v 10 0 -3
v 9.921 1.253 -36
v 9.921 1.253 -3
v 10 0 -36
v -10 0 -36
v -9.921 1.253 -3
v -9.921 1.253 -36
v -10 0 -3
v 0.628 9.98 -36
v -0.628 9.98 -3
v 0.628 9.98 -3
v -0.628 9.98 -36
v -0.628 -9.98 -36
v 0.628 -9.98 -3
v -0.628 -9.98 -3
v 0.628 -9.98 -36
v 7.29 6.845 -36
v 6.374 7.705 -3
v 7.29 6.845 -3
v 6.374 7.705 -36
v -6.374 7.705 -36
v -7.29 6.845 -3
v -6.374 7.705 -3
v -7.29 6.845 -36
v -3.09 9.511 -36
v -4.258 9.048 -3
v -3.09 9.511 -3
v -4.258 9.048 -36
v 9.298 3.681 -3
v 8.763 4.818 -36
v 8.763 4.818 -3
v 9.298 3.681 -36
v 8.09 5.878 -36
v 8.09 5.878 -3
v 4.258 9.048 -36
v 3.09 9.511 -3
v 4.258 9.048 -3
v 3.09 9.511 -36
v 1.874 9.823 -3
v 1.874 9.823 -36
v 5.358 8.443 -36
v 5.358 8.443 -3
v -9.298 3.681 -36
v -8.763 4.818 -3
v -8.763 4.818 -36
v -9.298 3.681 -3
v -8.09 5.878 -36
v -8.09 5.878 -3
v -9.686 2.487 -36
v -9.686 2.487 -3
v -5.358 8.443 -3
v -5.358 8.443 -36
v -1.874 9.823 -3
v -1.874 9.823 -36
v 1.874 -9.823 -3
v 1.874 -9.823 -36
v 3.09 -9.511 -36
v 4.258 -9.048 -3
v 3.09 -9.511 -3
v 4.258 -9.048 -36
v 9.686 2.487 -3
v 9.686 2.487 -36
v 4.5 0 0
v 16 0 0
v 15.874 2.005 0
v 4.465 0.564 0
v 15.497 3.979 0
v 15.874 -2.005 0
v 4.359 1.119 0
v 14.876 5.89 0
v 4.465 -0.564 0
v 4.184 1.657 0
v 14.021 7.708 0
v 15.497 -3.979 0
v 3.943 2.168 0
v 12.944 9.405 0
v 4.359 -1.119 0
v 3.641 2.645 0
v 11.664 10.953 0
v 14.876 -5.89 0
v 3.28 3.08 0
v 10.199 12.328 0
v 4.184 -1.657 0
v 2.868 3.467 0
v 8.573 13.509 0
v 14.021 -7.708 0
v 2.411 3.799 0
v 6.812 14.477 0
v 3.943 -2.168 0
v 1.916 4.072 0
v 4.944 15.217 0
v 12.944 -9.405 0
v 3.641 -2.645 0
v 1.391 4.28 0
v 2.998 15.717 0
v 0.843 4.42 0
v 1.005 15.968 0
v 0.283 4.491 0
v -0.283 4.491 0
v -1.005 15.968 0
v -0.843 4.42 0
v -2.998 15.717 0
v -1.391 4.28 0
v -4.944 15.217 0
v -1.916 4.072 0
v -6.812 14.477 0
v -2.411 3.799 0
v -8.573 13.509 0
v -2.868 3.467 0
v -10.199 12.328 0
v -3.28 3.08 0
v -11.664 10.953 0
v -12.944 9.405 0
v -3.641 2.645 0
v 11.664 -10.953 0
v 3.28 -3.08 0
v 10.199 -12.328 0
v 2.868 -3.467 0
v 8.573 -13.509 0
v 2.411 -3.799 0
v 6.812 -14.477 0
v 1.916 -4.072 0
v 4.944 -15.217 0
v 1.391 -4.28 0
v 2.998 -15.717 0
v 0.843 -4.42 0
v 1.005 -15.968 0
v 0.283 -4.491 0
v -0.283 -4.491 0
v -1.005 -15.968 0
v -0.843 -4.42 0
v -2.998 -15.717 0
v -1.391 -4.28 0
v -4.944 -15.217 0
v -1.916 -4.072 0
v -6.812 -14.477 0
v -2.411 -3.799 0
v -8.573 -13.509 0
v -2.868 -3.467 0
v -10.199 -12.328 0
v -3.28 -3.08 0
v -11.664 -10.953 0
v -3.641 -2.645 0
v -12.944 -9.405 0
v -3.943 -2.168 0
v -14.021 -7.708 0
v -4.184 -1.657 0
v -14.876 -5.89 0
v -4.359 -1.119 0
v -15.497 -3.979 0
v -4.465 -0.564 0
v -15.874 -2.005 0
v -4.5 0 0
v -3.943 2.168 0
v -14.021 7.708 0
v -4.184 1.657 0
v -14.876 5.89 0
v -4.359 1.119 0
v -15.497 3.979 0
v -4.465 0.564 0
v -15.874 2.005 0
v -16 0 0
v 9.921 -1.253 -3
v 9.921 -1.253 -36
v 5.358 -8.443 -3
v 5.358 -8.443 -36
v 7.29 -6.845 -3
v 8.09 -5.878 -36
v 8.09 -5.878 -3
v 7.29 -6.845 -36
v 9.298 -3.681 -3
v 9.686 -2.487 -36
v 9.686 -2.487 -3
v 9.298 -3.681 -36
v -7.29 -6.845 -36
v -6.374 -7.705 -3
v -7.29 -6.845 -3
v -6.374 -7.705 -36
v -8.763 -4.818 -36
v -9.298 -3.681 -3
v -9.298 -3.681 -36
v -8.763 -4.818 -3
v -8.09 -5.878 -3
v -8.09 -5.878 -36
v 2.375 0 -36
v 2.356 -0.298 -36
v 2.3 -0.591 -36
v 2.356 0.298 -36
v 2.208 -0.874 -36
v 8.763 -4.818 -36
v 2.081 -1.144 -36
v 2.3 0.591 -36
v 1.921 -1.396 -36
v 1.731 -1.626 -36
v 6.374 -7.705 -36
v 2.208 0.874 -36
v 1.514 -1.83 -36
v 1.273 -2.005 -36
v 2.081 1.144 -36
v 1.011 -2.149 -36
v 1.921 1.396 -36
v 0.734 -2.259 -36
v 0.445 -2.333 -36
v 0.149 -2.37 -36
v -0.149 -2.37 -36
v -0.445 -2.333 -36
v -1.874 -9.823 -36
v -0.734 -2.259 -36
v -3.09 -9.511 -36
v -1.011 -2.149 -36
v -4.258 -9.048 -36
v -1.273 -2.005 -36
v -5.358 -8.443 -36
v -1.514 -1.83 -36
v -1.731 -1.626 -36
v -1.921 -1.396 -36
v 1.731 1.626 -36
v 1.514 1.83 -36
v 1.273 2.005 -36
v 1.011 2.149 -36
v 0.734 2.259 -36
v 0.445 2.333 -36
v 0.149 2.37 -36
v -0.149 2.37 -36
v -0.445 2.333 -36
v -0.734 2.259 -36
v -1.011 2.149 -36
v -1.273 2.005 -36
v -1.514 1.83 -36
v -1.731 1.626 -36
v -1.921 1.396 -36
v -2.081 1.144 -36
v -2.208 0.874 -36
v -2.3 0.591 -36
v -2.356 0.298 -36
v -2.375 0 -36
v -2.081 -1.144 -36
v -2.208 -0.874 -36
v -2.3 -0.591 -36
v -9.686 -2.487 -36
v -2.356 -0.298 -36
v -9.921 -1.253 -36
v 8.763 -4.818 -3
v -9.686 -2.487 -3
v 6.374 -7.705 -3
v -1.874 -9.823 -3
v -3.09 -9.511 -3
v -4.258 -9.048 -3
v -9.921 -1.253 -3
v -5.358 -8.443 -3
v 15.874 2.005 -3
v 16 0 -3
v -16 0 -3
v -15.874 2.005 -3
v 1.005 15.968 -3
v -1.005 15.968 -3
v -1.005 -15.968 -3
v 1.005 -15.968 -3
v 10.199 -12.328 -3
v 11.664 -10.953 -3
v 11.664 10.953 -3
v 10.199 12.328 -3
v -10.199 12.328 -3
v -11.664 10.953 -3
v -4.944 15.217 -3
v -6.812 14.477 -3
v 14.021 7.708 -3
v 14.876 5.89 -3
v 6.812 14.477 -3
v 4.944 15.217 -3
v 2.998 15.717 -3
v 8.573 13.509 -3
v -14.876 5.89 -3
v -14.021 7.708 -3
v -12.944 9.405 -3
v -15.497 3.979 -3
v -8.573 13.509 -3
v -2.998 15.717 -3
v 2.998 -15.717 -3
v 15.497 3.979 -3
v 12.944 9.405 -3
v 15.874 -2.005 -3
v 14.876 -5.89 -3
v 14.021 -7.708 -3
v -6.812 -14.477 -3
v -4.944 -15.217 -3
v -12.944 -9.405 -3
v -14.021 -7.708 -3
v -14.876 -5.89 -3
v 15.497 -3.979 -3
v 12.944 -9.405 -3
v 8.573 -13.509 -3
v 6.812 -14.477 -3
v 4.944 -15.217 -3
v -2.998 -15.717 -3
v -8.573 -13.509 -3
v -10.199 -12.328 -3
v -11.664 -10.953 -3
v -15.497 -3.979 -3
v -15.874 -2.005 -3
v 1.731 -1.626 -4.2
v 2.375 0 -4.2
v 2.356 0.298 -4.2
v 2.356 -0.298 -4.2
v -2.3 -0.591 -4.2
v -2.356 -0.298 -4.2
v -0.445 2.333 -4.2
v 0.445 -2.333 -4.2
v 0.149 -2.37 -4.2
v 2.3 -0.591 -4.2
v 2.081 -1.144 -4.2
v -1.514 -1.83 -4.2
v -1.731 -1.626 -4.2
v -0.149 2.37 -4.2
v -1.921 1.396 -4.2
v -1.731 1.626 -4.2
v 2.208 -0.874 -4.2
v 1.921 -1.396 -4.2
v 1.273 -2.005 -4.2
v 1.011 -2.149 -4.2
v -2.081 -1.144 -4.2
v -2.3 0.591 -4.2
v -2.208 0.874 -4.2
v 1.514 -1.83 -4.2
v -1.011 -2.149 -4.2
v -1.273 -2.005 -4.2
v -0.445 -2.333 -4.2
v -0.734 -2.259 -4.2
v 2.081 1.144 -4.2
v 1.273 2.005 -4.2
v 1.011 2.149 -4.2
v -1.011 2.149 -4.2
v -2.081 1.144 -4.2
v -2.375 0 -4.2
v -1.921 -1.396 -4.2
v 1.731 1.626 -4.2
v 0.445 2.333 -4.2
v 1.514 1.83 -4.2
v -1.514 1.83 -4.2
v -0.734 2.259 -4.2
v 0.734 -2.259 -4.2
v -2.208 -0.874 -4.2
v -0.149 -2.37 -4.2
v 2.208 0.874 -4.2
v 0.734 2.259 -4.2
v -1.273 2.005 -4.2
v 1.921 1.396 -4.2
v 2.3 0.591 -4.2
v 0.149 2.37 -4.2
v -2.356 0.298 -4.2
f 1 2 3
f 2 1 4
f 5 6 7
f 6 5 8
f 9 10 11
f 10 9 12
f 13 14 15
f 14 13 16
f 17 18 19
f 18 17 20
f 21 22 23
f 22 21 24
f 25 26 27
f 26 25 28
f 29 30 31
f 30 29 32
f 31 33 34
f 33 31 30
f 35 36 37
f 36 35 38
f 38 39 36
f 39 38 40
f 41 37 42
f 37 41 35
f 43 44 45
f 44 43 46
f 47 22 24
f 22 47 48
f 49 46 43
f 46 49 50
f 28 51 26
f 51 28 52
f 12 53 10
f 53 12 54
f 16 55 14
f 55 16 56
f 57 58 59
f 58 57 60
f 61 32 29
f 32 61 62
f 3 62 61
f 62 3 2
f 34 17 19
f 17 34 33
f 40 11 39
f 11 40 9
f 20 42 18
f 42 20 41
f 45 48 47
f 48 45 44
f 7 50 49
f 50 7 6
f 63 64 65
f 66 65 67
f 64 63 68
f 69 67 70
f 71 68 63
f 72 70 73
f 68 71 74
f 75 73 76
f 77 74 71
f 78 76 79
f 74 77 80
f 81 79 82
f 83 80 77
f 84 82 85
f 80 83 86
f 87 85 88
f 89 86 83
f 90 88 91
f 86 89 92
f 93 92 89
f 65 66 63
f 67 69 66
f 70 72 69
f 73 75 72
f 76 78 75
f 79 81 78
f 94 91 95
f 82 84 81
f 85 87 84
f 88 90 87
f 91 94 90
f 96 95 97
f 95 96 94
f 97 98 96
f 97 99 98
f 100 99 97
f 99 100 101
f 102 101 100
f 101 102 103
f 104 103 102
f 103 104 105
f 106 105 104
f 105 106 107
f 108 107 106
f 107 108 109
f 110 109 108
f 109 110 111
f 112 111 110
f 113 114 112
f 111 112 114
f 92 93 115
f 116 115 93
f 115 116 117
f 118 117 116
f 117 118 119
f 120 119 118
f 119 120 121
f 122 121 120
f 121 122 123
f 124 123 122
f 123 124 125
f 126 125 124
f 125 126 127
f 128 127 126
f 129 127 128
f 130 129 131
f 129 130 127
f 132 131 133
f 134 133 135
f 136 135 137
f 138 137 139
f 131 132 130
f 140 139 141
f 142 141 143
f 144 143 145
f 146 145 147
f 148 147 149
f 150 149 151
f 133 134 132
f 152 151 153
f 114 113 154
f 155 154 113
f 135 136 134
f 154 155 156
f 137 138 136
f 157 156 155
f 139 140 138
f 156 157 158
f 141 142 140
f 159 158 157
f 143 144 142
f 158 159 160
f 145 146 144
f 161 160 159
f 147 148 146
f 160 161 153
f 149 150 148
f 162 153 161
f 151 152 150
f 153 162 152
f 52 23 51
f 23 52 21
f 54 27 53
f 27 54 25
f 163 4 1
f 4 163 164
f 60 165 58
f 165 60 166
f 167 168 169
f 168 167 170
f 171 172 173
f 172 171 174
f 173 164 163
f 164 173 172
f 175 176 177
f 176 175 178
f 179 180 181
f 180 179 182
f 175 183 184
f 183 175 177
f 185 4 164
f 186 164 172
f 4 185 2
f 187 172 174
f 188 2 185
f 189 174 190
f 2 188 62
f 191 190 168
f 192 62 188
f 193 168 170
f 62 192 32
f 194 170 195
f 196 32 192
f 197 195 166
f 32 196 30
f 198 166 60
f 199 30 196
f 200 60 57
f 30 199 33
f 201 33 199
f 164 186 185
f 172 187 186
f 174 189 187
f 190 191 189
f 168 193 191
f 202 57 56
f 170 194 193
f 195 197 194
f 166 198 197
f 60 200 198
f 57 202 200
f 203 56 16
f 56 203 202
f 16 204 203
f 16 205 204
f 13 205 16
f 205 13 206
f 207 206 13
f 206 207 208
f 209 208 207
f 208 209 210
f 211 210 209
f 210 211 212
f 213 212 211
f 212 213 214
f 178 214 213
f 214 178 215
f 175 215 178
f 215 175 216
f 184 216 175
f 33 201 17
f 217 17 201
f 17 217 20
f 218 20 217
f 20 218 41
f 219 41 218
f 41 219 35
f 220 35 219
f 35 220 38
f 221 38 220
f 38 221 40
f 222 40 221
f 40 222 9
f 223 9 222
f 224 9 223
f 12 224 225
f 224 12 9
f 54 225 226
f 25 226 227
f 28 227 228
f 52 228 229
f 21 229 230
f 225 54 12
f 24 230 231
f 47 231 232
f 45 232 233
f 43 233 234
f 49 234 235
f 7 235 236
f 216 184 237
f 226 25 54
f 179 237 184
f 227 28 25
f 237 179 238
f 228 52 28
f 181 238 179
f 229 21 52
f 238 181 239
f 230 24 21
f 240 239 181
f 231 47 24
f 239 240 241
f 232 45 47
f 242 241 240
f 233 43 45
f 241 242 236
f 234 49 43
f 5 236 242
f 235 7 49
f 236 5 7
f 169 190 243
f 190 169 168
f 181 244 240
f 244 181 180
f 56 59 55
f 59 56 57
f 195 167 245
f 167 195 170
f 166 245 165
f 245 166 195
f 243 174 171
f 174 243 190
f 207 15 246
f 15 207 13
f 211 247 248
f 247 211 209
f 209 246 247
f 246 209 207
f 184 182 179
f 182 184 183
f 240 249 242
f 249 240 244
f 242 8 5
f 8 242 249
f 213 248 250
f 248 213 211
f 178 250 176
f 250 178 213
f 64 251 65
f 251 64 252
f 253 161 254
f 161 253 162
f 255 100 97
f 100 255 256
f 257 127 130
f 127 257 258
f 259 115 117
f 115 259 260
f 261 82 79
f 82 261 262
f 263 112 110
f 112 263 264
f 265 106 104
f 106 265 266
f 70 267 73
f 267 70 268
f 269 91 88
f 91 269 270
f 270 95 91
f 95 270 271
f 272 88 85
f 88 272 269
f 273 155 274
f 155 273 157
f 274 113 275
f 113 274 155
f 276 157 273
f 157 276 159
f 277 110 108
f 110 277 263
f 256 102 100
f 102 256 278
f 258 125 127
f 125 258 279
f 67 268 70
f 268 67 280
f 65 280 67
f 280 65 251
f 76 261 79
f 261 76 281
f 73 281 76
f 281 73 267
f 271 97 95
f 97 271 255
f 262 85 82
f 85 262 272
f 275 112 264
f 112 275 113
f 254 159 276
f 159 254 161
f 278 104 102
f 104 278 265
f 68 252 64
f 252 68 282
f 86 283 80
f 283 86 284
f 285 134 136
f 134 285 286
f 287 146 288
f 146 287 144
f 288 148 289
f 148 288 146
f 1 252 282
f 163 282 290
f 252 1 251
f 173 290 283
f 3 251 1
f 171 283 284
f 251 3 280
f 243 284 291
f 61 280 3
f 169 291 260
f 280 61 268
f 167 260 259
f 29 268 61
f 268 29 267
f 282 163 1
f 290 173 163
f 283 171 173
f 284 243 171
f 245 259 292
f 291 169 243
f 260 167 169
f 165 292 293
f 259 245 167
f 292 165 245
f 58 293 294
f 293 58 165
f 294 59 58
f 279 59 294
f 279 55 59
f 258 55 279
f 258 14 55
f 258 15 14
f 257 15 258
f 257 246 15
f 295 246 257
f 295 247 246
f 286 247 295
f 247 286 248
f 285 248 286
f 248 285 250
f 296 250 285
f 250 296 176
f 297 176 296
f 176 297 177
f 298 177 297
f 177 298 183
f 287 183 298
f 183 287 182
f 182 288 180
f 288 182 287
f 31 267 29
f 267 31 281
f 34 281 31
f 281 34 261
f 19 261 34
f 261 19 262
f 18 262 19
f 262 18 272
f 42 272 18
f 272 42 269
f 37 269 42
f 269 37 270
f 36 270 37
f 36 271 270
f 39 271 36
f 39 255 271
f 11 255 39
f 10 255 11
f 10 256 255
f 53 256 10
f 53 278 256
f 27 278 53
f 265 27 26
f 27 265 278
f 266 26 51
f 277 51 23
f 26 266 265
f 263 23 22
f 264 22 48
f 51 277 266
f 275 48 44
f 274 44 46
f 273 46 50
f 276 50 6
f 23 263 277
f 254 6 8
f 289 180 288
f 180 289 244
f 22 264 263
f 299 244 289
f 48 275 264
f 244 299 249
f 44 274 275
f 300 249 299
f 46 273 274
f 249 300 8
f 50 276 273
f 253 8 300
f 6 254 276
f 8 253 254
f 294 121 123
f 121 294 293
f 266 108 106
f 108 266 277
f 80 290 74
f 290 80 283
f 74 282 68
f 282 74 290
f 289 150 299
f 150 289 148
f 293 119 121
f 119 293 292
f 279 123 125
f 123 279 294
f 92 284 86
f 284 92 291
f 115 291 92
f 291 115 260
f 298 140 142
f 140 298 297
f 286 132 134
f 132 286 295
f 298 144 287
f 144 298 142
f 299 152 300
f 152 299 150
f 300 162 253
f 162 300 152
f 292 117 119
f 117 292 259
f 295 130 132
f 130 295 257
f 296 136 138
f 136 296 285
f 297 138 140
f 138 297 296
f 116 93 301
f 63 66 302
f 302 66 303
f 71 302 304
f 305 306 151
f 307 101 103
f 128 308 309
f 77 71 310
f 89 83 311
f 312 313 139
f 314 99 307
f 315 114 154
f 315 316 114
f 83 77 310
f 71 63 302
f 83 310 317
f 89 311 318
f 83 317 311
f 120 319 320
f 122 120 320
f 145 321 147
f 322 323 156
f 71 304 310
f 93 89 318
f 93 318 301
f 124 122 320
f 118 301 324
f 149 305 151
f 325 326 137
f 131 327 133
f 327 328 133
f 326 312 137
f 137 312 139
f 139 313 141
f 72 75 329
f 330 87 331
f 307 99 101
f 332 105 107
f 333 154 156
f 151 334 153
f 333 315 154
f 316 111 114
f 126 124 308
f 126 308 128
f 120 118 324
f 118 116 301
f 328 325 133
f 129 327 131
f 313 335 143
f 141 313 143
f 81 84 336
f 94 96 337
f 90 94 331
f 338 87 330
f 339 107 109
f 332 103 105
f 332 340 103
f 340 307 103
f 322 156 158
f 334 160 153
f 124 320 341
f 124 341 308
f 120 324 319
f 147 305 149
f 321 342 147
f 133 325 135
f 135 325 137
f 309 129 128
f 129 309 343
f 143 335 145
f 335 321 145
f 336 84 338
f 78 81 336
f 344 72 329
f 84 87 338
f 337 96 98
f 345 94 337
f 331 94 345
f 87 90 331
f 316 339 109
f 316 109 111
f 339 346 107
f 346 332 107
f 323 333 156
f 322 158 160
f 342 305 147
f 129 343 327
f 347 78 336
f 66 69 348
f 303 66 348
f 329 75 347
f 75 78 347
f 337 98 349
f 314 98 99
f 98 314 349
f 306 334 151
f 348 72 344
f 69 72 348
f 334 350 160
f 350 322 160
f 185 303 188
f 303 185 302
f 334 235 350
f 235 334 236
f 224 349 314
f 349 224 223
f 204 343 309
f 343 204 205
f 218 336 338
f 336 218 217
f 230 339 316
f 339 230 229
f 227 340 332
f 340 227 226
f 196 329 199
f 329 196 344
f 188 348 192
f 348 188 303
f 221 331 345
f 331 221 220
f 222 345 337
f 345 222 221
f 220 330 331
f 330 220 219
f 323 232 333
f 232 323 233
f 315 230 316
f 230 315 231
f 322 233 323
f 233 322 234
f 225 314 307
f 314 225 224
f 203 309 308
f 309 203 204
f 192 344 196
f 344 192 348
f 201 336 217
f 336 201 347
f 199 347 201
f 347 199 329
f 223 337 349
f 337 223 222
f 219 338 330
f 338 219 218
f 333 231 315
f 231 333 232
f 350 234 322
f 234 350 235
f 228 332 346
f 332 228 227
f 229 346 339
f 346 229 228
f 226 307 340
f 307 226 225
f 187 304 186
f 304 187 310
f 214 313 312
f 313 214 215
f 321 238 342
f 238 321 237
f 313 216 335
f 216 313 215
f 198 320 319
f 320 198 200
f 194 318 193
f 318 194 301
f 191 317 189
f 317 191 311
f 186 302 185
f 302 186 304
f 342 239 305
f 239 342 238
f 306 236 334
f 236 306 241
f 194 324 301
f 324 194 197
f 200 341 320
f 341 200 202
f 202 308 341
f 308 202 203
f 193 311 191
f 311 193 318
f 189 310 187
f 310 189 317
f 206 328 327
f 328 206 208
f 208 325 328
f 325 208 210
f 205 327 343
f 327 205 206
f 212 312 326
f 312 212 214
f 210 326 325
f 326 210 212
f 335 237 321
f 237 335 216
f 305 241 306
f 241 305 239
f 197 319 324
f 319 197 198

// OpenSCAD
$fn = 50;


difference() {
	union() {
		translate(v = [0, 0, -36.0000000000]) {
			cylinder(h = 36, r = 10.0000000000);
		}
		translate(v = [0, 0, -3.0000000000]) {
			cylinder(h = 3, r = 16.0000000000);
		}
	}
	union() {
		translate(v = [0, 0, 0]) {
			rotate(a = [0, 0, 0]) {
				difference() {
					union() {
						#translate(v = [0, 0, -36.0000000000]) {
							cylinder(h = 36, r = 2.2500000000);
						}
						#translate(v = [0, 0, -4.2000000000]) {
							cylinder(h = 4.2000000000, r = 10.0000000000, r1 = 2.3750000000, r2 = 4.5000000000);
						}
						#translate(v = [0, 0, -36.0000000000]) {
							cylinder(h = 36, r = 2.3750000000);
						}
						#translate(v = [0, 0, -36.0000000000]) {
							cylinder(h = 36, r = 2.2500000000);
						}
					}
					union();
				}
			}
		}
	}
}
